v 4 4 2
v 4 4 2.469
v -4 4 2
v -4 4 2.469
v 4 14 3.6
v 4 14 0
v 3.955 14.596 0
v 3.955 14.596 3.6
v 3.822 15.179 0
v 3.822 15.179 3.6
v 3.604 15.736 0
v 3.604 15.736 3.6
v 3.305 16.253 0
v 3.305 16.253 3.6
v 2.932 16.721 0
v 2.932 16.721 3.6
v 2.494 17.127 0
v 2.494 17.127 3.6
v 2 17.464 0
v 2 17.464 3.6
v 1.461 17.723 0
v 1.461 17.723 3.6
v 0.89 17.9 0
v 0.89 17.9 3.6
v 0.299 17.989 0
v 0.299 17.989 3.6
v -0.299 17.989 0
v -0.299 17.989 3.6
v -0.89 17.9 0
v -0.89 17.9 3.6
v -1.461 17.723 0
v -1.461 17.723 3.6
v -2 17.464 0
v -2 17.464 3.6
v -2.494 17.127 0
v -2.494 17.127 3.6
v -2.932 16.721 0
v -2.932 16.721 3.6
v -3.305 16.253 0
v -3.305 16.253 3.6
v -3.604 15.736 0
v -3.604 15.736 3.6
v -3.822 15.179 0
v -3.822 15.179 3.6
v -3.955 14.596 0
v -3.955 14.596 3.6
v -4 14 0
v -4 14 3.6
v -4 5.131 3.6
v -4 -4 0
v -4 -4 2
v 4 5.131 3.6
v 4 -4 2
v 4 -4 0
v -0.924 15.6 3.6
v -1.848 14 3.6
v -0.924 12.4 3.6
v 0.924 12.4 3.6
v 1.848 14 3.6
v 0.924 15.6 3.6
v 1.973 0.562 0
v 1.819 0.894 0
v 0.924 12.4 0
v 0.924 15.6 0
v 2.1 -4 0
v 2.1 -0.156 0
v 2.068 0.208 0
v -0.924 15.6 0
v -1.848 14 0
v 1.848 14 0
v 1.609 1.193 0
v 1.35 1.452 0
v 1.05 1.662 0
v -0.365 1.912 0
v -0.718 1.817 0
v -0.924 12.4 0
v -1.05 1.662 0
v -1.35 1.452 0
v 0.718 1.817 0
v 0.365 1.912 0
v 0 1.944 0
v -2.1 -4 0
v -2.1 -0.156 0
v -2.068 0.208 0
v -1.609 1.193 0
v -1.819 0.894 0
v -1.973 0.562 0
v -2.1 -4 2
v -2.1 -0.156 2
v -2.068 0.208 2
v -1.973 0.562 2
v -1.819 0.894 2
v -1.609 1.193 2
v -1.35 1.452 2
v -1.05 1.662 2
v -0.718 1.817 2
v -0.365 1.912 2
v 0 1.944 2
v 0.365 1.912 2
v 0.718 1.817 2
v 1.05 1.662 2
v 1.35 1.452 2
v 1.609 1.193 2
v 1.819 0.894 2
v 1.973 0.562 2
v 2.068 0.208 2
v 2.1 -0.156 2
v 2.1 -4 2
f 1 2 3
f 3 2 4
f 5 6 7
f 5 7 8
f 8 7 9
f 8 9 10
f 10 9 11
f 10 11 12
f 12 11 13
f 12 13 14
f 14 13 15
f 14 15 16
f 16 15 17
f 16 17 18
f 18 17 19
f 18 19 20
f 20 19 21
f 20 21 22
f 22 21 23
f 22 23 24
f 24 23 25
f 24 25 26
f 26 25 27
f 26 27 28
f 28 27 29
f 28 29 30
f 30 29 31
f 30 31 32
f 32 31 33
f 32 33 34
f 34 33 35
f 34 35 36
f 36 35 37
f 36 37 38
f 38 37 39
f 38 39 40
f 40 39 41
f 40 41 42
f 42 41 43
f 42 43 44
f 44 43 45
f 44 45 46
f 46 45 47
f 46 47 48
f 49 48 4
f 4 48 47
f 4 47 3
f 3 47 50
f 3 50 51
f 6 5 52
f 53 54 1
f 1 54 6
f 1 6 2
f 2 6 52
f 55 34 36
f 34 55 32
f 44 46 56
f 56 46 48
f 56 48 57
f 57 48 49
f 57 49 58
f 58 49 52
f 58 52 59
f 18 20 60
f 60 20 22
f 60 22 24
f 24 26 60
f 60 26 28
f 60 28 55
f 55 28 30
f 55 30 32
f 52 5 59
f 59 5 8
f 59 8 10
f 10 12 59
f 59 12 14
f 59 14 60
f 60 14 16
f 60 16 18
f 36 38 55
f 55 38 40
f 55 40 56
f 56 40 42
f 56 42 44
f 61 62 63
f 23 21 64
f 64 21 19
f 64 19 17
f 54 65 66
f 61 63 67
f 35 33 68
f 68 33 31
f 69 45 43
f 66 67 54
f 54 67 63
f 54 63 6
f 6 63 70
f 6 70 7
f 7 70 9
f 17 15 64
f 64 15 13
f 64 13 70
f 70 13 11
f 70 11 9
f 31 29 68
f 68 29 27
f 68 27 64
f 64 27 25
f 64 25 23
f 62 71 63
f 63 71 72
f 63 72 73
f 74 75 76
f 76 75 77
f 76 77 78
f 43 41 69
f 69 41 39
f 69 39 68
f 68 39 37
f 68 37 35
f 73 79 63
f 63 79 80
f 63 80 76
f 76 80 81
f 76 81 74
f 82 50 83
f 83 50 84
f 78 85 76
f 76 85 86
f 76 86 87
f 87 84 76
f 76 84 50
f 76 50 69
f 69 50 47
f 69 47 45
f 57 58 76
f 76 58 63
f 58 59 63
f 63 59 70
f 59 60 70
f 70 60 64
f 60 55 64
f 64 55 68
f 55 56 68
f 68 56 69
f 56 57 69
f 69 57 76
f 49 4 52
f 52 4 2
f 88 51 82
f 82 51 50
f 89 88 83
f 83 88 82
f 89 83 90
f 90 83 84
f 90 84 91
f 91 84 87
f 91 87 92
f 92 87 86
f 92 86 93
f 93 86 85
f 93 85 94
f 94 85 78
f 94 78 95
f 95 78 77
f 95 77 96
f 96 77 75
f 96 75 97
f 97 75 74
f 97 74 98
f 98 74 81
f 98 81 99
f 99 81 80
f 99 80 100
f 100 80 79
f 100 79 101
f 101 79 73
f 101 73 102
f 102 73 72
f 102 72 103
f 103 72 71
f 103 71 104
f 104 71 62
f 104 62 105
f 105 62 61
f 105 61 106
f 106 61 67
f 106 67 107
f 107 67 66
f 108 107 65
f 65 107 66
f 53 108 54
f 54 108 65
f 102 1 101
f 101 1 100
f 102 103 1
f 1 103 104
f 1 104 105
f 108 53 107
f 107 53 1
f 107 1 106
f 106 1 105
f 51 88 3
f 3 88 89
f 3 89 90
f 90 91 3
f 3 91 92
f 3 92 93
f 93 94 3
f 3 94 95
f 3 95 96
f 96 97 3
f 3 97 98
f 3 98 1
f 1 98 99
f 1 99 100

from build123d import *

# Parameters (mm, degrees)
BOSS_EXTRUDE1_DEPTH = 3.6
CHAMFER1_SIZE       = 1.131371061
CHAMFER1_SIZE2      = 1.131370771
BOSS_EXTRUDE2_DEPTH = 2


with BuildPart() as part:
    # Sketch1 → Boss-Extrude1 (new body)
    with BuildSketch(Plane(origin=(0, 0, 0), x_dir=(-1, 0, 0), z_dir=(0, 0, -1))):
        with BuildLine():
            Line((-4, 14), (-4, 4.000000018))
            Line((-4, 4.000000018), (4, 4.000000018))
            Line((4, 4.000000018), (4, 14))
            ThreePointArc((4, 14), (0, 18), (-4, 14))
        make_face()
        Polygon((-0.92376, 12.400000746), (-1.84752, 14), (-0.92376, 15.599999254), (0.92376, 15.599999254), (1.84752, 14), (0.92376, 12.400000746), align=None, mode=Mode.SUBTRACT)
    extrude(amount=-BOSS_EXTRUDE1_DEPTH)

    # Chamfer1
    chamfer1_edges = [part.edges().sort_by_distance(p)[0] for p in [
        (0, 4.000000018, 3.6),
    ]]
    chamfer1_side = [part.faces().sort_by_distance(p)[0] for p in [
        (0, 4.000000018, 1.8),
    ]]
    chamfer(chamfer1_edges, length=CHAMFER1_SIZE, length2=CHAMFER1_SIZE2, reference=chamfer1_side[0])

    # Sketch6 → Boss-Extrude2 (add)
    with BuildSketch(Plane(origin=(0, 0, 0), x_dir=(-1, 0, 0), z_dir=(0, 0, -1))):
        with BuildLine():
            Line((-4, -4), (-2.1, -4))
            Line((-2.1, -4), (-2.1, -0.156392755))
            ThreePointArc((-2.1, -0.156392755), (0, 1.943607245), (2.1, -0.156392755))
            Line((2.1, -0.156392755), (2.1, -4))
            Line((2.1, -4), (4, -4))
            Line((4, -4), (4, 4.000000018))
            Line((4, 4.000000018), (-4, 4.000000018))
            Line((-4, 4.000000018), (-4, -4))
        make_face()
    extrude(amount=-BOSS_EXTRUDE2_DEPTH)


solid = part.part
